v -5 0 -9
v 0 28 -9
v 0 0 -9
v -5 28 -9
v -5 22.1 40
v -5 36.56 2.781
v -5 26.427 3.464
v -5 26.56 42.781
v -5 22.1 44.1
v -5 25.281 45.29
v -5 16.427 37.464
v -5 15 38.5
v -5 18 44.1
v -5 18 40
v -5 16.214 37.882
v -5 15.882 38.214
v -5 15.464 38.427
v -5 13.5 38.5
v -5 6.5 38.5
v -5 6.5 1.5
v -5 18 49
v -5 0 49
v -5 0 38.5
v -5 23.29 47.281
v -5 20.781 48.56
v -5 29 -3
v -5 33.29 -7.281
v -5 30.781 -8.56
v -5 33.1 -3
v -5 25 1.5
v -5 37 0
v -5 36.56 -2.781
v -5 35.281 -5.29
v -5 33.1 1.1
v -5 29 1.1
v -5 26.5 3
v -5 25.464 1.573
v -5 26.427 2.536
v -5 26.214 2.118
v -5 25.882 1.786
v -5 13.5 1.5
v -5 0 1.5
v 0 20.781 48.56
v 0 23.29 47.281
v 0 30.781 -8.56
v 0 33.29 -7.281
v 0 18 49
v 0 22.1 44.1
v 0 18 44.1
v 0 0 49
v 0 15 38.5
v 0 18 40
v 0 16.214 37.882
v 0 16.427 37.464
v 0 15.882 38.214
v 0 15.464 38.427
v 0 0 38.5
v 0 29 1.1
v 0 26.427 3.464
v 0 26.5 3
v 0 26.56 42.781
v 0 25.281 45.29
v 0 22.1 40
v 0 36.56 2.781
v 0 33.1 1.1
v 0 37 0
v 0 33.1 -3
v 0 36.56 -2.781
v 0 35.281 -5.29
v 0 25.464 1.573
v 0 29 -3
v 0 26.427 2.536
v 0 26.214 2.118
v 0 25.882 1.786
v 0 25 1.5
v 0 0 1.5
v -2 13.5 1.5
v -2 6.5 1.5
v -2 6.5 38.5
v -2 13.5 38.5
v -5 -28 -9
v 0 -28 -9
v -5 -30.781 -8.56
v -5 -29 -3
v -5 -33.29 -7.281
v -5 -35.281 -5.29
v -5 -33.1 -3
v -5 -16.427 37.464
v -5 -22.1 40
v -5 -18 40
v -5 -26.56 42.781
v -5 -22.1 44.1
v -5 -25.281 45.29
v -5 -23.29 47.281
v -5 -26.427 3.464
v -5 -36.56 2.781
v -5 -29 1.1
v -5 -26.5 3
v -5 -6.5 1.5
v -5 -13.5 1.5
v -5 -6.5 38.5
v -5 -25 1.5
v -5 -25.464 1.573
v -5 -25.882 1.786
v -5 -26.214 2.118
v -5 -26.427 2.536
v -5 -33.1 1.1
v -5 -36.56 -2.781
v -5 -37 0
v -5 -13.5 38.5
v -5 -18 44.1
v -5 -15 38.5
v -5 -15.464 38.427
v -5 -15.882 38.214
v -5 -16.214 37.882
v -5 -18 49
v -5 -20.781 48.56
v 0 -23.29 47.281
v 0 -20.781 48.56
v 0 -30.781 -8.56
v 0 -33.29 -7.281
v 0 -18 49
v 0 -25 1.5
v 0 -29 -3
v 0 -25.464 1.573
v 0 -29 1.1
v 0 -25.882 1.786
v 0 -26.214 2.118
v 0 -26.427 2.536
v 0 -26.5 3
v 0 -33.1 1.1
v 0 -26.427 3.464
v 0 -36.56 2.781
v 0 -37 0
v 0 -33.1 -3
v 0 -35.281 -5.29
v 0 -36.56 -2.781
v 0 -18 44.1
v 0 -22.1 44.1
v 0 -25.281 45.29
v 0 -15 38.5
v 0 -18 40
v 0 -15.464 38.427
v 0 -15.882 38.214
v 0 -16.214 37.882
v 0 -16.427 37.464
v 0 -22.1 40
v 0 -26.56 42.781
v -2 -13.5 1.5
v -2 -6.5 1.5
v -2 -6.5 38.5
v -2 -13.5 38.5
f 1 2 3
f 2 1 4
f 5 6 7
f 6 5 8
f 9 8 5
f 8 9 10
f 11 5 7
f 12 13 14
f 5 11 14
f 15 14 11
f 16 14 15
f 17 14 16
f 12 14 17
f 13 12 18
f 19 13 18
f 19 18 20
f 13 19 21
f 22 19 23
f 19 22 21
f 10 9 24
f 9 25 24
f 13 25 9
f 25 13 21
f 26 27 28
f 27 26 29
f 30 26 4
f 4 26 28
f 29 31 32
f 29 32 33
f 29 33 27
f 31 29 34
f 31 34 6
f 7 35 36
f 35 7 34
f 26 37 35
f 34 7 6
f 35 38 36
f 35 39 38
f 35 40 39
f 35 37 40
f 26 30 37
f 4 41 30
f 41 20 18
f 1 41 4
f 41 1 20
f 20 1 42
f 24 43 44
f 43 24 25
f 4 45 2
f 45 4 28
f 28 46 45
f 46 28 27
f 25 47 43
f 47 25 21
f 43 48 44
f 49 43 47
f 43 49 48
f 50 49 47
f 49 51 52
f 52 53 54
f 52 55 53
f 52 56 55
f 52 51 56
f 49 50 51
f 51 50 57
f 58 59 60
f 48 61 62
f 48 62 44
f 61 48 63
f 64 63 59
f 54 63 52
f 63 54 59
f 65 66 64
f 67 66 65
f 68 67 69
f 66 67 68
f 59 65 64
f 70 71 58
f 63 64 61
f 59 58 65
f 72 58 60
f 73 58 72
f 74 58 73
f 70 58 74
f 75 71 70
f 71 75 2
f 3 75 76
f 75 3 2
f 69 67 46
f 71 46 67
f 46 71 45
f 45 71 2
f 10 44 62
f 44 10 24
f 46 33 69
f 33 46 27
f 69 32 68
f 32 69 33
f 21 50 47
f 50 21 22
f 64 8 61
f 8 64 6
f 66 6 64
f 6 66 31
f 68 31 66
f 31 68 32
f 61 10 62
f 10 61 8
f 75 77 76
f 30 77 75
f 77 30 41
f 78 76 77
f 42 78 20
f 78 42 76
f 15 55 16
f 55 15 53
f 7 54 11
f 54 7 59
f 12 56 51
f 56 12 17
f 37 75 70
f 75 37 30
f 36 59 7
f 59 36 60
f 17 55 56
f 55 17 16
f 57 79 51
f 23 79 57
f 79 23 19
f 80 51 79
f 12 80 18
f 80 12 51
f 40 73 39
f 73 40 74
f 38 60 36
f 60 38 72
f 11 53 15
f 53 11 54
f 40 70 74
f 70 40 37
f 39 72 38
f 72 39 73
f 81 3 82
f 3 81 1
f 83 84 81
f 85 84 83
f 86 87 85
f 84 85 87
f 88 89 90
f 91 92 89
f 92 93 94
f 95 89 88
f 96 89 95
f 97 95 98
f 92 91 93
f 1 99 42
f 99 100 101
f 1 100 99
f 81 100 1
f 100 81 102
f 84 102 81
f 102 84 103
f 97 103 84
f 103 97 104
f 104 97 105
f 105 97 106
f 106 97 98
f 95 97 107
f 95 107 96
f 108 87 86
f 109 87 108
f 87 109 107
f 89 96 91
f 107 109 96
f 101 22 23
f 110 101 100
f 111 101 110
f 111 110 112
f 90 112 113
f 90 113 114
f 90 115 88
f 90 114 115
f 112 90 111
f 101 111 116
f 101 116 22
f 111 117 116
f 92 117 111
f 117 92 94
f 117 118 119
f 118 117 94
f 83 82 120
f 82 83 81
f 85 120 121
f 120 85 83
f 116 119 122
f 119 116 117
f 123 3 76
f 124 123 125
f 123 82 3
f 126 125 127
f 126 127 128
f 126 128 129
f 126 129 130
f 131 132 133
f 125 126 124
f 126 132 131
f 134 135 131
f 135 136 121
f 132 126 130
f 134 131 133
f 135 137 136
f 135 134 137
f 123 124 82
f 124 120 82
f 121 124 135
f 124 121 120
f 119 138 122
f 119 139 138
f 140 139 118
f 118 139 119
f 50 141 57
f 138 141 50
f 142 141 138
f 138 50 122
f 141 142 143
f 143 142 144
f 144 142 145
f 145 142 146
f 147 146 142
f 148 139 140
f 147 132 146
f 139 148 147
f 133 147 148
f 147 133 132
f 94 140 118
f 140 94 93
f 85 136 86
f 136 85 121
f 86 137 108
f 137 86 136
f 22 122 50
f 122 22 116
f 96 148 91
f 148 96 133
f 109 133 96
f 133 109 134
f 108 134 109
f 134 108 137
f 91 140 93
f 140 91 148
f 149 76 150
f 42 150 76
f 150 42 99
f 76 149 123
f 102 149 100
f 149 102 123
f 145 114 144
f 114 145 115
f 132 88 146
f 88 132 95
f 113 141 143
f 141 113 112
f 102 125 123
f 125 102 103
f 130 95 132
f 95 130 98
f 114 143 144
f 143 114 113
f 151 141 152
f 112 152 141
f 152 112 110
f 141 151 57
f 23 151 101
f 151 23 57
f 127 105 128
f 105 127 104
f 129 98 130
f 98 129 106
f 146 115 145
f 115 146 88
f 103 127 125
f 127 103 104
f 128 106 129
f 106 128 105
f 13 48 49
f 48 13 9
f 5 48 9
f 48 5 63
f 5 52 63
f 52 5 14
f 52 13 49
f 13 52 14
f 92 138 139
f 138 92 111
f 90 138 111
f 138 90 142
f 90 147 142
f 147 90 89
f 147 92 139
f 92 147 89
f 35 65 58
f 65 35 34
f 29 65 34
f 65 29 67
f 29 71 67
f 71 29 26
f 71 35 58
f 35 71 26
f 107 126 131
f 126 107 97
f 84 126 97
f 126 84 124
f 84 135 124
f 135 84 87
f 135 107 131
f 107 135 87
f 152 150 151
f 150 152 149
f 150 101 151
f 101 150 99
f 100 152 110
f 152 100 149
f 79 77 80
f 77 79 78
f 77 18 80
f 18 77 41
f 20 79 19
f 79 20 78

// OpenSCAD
t = 5;

rx = 100;
rdy = 4.1;
roy = 36;
royl = 58;

p0 = [0,0,18];
p1 = [0,28,18];
p2 = [40,18,18];
p3 = [40,0,18];

k = 12;


module rails(oz=2) {
    
  translate([-rx/2,roy/2,oz]) cube([rx,rdy,rdy]);
  mirror([0,1,0]){
    translate([-rx/2,roy/2,oz]) cube([rx,rdy,rdy]);
  }
    
}

module railsLow(oz=2) {
    
  translate([-rx/2,royl/2,oz]) cube([rx,rdy,rdy]);
  mirror([0,1,0]){
    translate([-rx/2,royl/2,oz]) cube([rx,rdy,rdy]);
  }
    
}


module span() {
difference(){
  hull(){
    translate([p0[0],p0[1],0])cylinder(r=p0[2]/2, h=t, $fn=20);
    translate([p1[0],p1[1],0])cylinder(r=p1[2]/2, h=t, $fn=20);
    translate([p2[0],p2[1],0])cylinder(r=p2[2]/2, h=t, $fn=20);
    translate([p3[0],p3[1],0])cylinder(r=p3[2]/2, h=t, $fn=20);
      
  }
  
  hull(){
    translate([p0[0]+3,p0[1]-3,-1])cylinder(r=p0[2]/k, h=2*t, $fn=20);
    translate([p1[0]+3,p1[1]-3,-1])cylinder(r=p1[2]/k, h=2*t, $fn=20);
    translate([p2[0]-3,p2[1]-3,-1])cylinder(r=p2[2]/k, h=2*t, $fn=20);
    translate([p3[0]-3,p3[1]-3,-1])cylinder(r=p3[2]/k, h=2*t, $fn=20);
  }

  translate([-120/2,-40,-1])cube([120,40,10]);
}
}


difference() {
rotate([0,-90,0])
union(){
  span();
  mirror([0,1,0])span();
};

translate([0,0,38])rails();
translate([0,0,-5])railsLow();

}

translate([-5,-10-7/2,-5])cube([3,7,50]);
translate([-5,+10-7/2,-5])cube([3,7,50]);
